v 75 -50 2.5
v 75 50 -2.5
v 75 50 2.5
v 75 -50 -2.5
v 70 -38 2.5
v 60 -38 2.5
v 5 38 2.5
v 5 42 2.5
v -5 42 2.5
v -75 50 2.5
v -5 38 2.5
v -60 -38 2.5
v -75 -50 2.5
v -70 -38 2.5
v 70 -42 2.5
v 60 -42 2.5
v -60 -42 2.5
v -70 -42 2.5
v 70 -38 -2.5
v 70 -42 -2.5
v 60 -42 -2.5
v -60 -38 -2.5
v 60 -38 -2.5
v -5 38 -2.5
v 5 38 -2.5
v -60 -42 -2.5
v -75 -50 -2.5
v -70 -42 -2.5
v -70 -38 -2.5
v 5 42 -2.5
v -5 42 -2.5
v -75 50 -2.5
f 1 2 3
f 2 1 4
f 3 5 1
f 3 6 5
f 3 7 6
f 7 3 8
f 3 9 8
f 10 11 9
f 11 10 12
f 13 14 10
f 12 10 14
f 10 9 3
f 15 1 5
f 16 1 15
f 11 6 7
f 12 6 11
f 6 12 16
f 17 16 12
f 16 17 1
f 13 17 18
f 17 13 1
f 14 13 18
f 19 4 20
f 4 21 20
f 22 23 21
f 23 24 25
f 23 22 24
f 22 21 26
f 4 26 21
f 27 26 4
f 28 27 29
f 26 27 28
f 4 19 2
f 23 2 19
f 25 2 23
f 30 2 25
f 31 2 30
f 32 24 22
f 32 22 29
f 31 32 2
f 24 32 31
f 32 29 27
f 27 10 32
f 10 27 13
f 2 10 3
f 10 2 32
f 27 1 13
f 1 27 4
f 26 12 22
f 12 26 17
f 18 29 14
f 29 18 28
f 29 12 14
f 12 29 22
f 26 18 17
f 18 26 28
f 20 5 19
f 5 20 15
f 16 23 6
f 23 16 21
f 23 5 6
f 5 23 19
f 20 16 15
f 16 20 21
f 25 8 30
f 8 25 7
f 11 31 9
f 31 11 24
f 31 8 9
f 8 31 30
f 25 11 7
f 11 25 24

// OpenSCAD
// ========================================
// a 15 x 10 x 0.5 cm plate with three 1 x 0.4 cm slots
// NeuroCAD canonical IR; dimensions are millimetres
// ========================================
$fn = 48;

difference() {
  cube(size=[150, 100, 5], center=true);
  translate([-65, -40, 0]) {
    cube(size=[10, 4, 7], center=true);
  }
  translate([65, -40, 0]) {
    cube(size=[10, 4, 7], center=true);
  }
  translate([0, 40, 0]) {
    cube(size=[10, 4, 7], center=true);
  }
}
